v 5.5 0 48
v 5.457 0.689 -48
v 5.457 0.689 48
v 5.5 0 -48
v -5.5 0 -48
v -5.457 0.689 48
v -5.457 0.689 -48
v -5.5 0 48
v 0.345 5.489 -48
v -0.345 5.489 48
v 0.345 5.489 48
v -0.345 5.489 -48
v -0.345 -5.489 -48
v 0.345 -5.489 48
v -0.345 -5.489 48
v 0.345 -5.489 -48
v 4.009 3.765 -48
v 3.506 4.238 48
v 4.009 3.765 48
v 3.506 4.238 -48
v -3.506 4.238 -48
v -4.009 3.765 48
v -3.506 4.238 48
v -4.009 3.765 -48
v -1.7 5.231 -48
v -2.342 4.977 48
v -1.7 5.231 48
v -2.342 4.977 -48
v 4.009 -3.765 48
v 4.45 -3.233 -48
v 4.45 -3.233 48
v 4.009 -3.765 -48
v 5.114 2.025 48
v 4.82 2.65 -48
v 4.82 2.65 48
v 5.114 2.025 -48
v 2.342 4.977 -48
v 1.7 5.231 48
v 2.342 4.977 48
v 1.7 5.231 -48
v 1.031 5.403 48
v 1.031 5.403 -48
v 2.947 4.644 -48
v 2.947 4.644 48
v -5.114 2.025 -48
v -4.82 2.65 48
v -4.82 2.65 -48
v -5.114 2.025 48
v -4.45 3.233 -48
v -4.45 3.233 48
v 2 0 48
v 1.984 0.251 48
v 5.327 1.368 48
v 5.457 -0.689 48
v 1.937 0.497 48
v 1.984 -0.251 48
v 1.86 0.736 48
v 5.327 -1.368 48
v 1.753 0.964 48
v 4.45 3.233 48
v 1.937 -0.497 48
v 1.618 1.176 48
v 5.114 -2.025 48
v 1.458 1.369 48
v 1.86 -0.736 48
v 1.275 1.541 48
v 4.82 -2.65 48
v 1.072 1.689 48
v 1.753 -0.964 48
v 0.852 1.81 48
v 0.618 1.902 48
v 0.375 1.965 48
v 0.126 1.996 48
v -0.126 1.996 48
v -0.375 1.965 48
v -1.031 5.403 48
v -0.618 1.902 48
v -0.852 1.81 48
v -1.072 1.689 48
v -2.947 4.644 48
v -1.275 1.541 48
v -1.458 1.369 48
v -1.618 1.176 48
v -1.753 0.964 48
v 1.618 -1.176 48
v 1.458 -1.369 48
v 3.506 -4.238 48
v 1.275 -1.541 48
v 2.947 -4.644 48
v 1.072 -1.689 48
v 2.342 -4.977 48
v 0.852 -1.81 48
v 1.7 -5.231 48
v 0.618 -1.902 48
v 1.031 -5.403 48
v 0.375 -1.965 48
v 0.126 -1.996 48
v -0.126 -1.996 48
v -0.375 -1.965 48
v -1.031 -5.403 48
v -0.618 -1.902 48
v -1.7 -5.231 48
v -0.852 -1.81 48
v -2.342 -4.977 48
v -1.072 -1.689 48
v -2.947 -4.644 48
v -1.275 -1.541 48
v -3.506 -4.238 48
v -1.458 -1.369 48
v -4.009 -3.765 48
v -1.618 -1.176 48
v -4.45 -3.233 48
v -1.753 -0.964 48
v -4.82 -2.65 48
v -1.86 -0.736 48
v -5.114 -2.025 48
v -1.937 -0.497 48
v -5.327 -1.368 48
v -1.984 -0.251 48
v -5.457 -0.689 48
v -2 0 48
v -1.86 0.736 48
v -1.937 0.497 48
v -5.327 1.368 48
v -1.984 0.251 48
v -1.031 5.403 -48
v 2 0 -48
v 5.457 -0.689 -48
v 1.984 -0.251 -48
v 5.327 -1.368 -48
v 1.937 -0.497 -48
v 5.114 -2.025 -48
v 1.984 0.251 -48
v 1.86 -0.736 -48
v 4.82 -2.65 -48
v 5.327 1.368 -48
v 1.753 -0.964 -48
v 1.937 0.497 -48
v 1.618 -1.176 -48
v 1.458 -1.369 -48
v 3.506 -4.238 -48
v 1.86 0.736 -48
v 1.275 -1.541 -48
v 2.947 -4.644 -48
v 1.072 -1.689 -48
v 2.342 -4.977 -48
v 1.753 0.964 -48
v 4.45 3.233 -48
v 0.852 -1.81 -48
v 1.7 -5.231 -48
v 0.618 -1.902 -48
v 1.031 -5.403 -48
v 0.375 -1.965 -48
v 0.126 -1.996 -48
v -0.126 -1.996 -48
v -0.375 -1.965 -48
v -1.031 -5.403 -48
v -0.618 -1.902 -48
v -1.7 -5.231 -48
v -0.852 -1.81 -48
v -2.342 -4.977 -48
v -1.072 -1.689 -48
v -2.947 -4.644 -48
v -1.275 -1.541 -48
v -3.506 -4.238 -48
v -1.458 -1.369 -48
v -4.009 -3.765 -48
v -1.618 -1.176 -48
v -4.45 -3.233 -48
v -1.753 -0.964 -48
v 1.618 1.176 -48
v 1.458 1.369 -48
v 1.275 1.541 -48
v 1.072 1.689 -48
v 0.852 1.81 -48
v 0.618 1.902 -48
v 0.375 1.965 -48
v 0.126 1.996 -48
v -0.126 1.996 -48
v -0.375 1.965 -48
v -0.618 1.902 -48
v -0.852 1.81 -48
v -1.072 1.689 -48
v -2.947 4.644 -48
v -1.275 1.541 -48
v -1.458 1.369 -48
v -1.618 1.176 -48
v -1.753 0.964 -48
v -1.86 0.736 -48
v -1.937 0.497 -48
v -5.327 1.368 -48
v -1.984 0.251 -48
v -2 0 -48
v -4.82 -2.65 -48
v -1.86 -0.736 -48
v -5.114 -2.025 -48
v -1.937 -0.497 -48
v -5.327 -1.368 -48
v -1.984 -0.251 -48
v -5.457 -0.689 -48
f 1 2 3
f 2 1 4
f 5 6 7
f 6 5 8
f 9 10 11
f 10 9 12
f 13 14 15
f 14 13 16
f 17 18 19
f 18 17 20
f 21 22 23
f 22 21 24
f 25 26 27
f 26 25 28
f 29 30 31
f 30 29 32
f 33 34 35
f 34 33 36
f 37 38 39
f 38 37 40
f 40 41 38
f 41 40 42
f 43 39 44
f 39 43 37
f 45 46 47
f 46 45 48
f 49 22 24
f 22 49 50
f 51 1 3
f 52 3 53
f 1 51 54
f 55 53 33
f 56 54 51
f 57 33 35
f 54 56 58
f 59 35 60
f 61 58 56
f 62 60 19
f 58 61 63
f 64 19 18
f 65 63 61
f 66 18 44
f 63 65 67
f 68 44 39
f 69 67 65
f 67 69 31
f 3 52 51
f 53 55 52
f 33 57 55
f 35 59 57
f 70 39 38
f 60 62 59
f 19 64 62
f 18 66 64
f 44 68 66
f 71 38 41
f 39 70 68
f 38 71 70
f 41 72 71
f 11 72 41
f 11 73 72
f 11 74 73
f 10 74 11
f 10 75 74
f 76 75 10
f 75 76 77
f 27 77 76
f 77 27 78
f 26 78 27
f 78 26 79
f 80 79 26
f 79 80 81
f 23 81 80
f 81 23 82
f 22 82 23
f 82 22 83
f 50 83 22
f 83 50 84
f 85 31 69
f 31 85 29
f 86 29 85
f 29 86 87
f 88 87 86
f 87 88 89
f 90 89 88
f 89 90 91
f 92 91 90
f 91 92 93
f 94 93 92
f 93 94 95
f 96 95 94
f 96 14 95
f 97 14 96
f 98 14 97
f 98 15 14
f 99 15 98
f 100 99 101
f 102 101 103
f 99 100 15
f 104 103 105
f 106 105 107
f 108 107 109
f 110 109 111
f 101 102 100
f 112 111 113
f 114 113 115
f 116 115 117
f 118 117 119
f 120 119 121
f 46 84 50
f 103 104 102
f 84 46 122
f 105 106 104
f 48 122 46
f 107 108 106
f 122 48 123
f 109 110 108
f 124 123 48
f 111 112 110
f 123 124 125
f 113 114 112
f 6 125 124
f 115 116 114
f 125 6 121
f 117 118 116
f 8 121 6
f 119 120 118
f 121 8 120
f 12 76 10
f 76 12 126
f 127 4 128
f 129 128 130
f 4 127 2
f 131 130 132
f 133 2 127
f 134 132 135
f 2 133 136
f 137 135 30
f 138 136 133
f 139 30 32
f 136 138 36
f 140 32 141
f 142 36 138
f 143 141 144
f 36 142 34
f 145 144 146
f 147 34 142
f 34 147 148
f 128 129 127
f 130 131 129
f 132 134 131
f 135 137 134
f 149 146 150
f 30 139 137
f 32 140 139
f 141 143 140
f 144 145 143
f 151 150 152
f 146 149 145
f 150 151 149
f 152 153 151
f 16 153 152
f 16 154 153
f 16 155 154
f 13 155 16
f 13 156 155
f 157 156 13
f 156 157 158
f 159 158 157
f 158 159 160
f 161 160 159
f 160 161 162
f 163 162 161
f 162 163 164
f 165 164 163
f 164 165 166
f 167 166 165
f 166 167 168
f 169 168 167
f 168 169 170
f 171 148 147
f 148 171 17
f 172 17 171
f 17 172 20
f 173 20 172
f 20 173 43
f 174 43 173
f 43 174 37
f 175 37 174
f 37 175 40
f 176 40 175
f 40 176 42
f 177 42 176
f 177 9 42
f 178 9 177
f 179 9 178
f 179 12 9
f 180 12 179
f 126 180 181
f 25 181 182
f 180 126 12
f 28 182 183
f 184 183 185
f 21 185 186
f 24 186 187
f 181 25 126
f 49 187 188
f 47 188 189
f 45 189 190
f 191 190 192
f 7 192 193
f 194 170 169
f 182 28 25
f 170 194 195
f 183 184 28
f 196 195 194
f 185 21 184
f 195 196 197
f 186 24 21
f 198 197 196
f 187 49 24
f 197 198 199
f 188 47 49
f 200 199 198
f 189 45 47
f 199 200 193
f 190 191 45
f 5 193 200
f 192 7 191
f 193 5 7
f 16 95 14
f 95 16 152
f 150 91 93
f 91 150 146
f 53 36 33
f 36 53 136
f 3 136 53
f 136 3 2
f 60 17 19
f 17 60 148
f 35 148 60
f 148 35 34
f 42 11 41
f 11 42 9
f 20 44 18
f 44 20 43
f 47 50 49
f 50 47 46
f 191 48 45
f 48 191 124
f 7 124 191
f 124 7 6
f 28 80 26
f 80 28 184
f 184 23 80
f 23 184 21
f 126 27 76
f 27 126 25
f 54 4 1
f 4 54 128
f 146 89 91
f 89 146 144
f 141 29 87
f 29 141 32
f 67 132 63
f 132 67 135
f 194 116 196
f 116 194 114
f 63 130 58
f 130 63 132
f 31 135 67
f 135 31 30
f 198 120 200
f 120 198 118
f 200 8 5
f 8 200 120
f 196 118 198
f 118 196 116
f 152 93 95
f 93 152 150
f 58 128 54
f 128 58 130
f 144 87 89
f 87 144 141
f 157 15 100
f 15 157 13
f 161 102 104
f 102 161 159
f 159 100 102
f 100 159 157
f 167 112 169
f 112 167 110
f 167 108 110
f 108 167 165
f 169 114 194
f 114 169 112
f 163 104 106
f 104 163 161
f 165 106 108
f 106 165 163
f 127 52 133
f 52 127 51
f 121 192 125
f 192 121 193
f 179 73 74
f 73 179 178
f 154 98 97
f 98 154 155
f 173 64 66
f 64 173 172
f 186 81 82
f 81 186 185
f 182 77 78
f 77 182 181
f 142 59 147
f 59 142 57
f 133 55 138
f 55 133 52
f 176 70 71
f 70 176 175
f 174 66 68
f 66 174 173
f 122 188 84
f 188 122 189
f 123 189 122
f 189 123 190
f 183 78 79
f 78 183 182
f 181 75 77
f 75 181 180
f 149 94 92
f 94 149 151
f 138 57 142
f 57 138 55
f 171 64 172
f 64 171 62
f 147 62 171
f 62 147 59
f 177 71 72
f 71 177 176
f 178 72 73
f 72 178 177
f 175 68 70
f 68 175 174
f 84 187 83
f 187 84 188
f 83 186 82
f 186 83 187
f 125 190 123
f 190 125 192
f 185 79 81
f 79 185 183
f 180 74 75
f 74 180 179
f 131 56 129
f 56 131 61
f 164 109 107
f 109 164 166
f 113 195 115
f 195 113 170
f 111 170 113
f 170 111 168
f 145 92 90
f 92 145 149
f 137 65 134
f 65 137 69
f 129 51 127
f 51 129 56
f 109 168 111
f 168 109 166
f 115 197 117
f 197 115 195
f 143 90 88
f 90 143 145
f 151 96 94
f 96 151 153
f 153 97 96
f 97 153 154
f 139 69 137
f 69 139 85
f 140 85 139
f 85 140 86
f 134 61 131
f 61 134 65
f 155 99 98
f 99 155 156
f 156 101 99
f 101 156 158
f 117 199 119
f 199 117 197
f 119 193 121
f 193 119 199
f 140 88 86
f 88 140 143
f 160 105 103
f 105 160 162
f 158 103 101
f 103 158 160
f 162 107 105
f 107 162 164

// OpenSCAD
$fn = 50;


difference() {
	union() {
		translate(v = [0, 0, -48.0000000000]) {
			cylinder(h = 96, r = 5.5000000000);
		}
	}
	union() {
		translate(v = [0, 0, -100.0000000000]) {
			cylinder(h = 200, r = 2);
		}
	}
}
